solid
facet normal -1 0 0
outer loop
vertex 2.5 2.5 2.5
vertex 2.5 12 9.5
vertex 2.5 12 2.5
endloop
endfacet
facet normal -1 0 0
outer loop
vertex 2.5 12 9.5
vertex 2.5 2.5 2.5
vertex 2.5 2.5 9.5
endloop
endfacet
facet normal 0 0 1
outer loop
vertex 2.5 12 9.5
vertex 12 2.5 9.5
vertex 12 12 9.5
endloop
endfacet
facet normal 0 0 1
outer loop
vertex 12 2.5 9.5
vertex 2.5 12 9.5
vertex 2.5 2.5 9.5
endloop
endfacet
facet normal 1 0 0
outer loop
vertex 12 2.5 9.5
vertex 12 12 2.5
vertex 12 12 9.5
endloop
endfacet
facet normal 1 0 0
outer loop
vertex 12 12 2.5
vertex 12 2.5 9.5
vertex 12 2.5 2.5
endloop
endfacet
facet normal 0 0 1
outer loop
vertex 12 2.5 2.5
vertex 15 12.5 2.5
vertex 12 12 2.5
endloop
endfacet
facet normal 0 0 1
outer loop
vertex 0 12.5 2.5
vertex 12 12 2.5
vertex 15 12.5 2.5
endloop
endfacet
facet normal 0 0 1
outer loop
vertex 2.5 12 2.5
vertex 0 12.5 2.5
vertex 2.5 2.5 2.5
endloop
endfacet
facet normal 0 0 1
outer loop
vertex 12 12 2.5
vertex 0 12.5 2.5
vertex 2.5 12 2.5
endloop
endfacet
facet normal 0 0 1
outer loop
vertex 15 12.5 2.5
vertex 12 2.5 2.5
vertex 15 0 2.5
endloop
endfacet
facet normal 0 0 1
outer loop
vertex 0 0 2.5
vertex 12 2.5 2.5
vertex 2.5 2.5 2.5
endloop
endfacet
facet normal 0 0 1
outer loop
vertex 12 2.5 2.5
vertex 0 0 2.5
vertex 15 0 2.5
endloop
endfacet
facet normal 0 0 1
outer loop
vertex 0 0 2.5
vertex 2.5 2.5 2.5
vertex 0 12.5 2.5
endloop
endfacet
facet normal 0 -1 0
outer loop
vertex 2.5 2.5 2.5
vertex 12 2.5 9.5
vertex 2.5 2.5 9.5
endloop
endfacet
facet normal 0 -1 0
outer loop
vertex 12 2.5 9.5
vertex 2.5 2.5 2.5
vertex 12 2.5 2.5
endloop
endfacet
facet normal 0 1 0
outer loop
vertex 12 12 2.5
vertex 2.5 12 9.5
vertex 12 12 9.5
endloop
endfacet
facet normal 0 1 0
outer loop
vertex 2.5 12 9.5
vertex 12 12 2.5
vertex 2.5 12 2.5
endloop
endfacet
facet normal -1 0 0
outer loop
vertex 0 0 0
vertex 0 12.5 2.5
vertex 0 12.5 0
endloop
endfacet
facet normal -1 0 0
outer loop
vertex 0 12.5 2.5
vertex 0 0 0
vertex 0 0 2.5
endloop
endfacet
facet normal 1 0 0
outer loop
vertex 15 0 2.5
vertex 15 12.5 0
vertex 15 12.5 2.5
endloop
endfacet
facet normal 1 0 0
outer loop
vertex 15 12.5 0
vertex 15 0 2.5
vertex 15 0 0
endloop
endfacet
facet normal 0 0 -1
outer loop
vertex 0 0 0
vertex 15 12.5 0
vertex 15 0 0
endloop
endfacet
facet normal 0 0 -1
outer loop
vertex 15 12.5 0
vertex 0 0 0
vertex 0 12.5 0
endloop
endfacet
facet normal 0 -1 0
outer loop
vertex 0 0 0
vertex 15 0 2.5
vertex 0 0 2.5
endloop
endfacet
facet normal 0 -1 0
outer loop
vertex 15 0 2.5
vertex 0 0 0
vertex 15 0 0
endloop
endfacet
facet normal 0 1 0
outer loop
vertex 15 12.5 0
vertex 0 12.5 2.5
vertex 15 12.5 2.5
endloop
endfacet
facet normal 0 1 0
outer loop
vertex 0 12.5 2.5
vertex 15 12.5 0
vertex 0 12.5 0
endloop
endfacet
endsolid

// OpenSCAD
// reset guide 
w=2.5;
translate([w,w,w]) cube([10-0.5,10-0.5,7 ]);
cube([10+2*w, 10+w, w]);
